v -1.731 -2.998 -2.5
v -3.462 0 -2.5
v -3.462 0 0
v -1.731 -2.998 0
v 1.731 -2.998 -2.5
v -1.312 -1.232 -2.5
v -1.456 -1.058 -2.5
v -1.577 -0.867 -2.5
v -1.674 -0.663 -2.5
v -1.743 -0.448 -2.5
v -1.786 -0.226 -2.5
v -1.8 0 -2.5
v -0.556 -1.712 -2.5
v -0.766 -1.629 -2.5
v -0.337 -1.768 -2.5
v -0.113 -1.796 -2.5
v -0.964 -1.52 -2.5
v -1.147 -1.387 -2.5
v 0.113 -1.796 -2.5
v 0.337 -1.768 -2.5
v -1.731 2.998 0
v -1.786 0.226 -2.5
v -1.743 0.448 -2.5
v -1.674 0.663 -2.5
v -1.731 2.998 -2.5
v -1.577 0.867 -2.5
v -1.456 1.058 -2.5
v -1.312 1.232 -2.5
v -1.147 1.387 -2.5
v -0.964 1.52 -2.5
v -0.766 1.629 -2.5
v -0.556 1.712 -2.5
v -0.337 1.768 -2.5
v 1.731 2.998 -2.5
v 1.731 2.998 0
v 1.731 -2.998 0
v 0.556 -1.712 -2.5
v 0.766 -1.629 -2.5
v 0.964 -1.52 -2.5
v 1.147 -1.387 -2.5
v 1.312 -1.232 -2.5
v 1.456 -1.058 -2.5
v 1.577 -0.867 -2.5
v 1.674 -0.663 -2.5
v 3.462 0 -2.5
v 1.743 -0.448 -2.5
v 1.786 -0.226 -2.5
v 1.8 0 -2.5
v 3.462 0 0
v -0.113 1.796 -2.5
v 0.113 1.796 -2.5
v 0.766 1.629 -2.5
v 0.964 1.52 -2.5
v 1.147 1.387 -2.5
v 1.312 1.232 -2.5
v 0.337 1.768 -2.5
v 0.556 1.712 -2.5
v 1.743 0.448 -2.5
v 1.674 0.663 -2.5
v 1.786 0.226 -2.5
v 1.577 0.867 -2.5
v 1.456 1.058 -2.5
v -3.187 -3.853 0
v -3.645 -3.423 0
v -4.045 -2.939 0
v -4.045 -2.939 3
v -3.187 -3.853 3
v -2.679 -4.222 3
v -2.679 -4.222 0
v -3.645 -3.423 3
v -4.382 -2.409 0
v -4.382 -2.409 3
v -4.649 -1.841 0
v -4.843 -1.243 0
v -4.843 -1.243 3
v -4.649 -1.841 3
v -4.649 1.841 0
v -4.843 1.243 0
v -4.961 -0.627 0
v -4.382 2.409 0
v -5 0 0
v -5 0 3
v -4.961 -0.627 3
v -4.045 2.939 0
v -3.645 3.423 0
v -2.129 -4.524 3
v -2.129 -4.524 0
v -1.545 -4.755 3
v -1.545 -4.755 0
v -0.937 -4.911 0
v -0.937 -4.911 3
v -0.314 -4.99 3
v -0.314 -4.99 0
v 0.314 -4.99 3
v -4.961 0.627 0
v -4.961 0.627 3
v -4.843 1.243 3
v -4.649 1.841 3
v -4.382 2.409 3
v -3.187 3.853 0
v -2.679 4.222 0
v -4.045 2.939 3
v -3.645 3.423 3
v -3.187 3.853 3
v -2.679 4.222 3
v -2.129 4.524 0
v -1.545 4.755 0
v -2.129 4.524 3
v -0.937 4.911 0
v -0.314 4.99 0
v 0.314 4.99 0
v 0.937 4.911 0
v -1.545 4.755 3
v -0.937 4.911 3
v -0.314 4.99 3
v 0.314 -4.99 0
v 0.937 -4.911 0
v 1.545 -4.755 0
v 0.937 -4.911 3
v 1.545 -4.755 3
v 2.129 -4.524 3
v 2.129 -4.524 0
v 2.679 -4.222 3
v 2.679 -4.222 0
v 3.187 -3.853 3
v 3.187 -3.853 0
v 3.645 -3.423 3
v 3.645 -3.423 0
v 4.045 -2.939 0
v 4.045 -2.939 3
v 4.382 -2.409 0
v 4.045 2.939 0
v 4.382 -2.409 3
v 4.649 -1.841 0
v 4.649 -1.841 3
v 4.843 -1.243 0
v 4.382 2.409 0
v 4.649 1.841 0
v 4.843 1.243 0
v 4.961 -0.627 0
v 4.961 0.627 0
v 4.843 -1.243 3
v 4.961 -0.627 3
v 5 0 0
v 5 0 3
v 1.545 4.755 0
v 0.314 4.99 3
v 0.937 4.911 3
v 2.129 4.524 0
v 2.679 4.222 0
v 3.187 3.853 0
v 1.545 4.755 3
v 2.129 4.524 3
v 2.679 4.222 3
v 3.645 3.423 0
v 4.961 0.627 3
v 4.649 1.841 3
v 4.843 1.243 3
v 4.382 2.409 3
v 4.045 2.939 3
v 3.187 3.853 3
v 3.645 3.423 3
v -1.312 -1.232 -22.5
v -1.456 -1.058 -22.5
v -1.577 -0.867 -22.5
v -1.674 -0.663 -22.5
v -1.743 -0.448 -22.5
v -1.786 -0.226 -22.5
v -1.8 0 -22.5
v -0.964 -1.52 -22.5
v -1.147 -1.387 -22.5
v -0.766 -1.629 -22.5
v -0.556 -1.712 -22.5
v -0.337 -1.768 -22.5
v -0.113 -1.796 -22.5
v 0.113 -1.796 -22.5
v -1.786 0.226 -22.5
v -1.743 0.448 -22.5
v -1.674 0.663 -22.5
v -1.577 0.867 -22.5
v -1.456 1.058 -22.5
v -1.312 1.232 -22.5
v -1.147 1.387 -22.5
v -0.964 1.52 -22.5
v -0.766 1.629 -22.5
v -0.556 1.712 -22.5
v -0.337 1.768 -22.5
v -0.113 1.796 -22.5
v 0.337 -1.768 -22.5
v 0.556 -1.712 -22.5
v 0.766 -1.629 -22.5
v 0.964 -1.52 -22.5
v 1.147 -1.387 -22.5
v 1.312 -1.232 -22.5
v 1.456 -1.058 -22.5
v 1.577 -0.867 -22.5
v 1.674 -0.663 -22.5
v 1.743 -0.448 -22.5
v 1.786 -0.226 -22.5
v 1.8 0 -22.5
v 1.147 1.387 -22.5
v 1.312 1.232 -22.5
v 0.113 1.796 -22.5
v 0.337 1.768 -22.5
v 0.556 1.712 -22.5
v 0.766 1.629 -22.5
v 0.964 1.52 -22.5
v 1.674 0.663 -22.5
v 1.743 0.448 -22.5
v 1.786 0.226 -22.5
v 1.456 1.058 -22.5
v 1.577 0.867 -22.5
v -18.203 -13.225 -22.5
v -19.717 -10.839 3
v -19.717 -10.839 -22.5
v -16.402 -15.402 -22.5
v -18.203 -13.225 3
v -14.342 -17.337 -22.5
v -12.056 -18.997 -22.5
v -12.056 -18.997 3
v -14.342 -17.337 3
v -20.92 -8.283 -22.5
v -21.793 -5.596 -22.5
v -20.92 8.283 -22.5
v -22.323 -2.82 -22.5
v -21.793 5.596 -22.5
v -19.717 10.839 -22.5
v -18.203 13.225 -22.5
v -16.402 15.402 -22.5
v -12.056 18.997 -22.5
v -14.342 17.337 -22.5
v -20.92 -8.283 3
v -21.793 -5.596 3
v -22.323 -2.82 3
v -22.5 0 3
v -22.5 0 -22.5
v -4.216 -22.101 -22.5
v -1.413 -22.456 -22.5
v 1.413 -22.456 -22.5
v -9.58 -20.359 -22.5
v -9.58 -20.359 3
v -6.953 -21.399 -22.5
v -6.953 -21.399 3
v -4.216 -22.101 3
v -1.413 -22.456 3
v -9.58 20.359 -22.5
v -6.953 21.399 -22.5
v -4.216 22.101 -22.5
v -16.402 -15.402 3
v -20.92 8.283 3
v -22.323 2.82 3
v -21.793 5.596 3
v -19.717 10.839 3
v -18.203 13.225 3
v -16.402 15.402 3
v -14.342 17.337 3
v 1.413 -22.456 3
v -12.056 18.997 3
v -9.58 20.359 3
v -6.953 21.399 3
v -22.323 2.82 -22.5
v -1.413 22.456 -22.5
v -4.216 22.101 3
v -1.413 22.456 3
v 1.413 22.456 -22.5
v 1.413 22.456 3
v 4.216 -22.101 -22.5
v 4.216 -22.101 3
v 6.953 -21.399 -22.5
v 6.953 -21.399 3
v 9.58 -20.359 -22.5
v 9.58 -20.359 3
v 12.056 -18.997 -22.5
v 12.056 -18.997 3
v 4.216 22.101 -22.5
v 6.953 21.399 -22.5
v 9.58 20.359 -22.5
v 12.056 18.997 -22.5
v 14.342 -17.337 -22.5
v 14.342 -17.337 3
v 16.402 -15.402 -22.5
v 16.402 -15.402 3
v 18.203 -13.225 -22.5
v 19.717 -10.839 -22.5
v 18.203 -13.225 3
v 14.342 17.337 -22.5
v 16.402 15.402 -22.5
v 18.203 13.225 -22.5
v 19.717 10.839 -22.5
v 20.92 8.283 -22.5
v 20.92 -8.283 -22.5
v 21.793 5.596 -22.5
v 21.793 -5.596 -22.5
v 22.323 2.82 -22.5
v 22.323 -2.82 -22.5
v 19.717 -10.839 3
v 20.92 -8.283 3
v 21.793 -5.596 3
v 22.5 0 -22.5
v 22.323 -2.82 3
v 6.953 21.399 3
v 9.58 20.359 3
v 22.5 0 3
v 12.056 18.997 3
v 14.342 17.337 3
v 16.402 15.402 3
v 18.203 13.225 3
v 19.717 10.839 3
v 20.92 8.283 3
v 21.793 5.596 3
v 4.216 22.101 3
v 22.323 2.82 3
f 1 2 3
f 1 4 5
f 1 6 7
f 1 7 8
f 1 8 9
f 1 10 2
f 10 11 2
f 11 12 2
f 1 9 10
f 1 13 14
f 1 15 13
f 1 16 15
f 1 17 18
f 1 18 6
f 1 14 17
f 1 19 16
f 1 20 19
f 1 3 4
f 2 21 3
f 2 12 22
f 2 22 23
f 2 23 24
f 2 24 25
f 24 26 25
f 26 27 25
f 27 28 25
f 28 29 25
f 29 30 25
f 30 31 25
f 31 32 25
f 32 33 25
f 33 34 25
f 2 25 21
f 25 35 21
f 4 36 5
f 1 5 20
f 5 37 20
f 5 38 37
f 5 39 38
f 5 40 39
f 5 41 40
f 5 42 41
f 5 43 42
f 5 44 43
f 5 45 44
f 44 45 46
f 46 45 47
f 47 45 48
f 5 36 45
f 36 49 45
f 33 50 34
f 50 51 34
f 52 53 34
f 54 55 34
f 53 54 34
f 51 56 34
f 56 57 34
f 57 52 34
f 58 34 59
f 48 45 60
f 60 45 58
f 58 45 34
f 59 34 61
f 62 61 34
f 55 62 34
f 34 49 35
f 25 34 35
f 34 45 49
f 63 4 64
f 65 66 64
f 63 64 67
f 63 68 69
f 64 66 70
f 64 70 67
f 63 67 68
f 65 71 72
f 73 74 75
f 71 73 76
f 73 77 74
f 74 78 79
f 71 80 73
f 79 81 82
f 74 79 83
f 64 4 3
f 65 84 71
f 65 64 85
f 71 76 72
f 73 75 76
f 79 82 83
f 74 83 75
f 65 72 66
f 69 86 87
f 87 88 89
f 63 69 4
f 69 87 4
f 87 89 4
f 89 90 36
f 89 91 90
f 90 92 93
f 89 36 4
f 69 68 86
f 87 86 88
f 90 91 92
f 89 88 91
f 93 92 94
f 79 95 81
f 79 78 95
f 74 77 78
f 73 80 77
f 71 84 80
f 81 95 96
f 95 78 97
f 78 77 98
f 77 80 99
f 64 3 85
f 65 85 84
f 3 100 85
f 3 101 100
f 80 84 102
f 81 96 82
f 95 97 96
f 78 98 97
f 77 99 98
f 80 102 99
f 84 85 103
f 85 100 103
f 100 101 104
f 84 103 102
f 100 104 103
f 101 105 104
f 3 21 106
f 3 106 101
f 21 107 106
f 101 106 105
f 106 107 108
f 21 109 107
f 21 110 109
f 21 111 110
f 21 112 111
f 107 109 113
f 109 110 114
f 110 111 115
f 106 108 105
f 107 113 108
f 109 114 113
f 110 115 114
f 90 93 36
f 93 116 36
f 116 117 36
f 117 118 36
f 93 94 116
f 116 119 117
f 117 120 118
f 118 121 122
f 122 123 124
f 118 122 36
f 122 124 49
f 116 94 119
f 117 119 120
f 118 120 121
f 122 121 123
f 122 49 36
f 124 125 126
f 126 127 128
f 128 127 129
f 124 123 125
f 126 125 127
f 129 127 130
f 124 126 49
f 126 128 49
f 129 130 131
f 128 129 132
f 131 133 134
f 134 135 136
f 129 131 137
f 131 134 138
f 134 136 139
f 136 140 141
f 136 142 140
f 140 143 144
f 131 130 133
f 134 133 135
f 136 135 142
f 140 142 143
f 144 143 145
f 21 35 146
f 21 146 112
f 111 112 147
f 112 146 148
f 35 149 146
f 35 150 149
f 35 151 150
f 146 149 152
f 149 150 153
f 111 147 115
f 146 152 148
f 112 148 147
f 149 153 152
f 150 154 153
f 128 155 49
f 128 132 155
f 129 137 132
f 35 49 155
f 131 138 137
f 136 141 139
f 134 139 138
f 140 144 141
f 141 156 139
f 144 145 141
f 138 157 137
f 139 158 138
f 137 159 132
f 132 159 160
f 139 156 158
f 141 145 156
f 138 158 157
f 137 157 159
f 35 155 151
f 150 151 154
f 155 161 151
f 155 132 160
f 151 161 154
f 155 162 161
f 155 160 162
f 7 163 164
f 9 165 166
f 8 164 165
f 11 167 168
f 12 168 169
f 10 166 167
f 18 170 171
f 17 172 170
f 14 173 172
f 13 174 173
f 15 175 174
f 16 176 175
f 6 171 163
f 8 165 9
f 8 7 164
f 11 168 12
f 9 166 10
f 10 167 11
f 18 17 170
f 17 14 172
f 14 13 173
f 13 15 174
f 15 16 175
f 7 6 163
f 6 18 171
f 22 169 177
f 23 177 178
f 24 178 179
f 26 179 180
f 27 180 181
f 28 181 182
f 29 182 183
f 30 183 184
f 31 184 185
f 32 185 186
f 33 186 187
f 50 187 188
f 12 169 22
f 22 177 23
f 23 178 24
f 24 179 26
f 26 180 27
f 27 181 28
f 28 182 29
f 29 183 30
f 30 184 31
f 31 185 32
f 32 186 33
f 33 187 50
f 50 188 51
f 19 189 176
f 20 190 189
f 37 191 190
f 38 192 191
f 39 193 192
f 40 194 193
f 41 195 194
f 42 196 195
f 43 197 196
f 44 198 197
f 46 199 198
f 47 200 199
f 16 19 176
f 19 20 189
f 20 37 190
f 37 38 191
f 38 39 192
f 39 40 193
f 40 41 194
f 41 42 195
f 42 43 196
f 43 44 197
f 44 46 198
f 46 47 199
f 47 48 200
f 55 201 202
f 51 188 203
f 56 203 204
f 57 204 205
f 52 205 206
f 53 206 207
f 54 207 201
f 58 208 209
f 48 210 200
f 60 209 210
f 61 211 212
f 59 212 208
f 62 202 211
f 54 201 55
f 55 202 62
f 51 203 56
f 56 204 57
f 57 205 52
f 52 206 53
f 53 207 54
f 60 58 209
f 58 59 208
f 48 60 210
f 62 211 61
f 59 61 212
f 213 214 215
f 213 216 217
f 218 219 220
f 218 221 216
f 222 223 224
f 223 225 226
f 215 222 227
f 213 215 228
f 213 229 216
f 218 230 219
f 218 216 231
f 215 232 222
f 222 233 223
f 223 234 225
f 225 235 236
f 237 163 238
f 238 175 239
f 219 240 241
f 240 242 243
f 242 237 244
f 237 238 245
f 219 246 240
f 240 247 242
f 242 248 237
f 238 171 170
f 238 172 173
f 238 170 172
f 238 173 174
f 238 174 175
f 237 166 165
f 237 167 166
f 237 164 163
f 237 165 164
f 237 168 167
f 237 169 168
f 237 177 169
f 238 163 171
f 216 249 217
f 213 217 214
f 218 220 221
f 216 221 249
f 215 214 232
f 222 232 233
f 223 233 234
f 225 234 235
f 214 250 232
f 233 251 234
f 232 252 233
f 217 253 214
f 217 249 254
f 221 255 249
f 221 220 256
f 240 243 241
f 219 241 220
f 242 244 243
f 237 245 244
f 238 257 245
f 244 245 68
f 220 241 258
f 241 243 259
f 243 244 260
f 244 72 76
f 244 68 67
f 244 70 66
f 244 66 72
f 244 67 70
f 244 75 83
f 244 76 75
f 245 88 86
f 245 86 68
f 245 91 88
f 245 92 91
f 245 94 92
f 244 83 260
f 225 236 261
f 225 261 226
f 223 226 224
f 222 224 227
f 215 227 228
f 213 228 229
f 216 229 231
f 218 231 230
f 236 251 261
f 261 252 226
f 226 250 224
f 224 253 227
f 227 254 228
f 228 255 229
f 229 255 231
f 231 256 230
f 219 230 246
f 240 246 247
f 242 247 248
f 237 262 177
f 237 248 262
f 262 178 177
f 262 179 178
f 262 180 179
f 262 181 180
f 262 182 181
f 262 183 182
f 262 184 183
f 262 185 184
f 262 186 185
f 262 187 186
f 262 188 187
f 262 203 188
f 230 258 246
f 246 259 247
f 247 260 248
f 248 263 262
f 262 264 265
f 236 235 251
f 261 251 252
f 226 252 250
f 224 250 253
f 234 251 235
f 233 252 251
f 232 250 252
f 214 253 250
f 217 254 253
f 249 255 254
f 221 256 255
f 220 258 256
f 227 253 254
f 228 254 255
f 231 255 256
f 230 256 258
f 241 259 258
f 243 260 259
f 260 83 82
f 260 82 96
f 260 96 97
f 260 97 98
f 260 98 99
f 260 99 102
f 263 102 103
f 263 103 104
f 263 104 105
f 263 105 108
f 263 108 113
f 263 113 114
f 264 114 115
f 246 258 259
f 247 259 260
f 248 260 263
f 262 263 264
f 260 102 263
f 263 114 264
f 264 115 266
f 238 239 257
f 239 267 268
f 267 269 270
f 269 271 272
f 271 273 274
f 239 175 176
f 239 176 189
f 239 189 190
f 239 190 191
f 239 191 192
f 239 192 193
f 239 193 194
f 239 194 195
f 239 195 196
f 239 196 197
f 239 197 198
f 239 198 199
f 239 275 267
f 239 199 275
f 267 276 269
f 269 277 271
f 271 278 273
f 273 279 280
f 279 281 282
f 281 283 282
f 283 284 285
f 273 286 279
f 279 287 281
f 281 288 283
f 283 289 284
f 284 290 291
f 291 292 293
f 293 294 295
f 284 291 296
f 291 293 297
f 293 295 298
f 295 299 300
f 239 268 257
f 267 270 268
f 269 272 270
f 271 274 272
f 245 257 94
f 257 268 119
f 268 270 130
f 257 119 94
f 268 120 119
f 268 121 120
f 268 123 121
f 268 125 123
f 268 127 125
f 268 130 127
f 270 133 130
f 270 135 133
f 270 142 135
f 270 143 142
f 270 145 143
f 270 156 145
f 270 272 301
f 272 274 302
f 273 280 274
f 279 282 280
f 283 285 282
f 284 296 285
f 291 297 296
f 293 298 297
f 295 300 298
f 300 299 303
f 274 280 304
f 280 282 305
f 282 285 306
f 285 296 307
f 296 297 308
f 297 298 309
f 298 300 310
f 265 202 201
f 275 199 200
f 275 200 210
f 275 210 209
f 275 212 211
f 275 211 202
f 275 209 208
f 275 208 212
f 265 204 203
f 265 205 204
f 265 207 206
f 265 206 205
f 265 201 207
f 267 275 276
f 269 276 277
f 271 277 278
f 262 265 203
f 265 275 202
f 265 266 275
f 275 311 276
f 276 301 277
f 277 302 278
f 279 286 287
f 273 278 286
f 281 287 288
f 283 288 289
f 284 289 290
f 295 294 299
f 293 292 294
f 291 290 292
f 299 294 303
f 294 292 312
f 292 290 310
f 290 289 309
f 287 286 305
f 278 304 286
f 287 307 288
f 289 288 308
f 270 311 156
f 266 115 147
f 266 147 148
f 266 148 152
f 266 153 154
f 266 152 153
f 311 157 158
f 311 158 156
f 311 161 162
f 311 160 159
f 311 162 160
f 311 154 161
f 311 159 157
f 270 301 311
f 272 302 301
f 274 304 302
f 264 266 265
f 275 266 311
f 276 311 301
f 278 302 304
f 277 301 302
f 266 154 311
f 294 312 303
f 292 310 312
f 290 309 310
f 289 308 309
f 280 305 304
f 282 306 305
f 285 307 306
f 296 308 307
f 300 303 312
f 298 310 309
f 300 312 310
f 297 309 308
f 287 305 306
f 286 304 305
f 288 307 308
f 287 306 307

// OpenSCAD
$fn = 50;


difference() {
	union() {
		translate(v = [0, 0, -22.5000000000]) {
			cylinder(h = 25.5000000000, r = 22.5000000000);
		}
	}
	union() {
		translate(v = [0, 0, 0]) {
			rotate(a = [0, 0, 0]) {
				difference() {
					union() {
						translate(v = [0, 0, -2.5000000000]) {
							linear_extrude(height = 2.5000000000) {
								polygon(points = [[3.4620000000, 0.0000000000], [1.7310000000, 2.9981799479], [-1.7310000000, 2.9981799479], [-3.4620000000, 0.0000000000], [-1.7310000000, -2.9981799479], [1.7310000000, -2.9981799479]]);
							}
						}
					}
					union();
				}
			}
		}
		#cylinder(h = 3, r = 5.0000000000);
		#translate(v = [0, 0, -100.0000000000]) {
			cylinder(h = 200, r = 1.8000000000);
		}
	}
}
